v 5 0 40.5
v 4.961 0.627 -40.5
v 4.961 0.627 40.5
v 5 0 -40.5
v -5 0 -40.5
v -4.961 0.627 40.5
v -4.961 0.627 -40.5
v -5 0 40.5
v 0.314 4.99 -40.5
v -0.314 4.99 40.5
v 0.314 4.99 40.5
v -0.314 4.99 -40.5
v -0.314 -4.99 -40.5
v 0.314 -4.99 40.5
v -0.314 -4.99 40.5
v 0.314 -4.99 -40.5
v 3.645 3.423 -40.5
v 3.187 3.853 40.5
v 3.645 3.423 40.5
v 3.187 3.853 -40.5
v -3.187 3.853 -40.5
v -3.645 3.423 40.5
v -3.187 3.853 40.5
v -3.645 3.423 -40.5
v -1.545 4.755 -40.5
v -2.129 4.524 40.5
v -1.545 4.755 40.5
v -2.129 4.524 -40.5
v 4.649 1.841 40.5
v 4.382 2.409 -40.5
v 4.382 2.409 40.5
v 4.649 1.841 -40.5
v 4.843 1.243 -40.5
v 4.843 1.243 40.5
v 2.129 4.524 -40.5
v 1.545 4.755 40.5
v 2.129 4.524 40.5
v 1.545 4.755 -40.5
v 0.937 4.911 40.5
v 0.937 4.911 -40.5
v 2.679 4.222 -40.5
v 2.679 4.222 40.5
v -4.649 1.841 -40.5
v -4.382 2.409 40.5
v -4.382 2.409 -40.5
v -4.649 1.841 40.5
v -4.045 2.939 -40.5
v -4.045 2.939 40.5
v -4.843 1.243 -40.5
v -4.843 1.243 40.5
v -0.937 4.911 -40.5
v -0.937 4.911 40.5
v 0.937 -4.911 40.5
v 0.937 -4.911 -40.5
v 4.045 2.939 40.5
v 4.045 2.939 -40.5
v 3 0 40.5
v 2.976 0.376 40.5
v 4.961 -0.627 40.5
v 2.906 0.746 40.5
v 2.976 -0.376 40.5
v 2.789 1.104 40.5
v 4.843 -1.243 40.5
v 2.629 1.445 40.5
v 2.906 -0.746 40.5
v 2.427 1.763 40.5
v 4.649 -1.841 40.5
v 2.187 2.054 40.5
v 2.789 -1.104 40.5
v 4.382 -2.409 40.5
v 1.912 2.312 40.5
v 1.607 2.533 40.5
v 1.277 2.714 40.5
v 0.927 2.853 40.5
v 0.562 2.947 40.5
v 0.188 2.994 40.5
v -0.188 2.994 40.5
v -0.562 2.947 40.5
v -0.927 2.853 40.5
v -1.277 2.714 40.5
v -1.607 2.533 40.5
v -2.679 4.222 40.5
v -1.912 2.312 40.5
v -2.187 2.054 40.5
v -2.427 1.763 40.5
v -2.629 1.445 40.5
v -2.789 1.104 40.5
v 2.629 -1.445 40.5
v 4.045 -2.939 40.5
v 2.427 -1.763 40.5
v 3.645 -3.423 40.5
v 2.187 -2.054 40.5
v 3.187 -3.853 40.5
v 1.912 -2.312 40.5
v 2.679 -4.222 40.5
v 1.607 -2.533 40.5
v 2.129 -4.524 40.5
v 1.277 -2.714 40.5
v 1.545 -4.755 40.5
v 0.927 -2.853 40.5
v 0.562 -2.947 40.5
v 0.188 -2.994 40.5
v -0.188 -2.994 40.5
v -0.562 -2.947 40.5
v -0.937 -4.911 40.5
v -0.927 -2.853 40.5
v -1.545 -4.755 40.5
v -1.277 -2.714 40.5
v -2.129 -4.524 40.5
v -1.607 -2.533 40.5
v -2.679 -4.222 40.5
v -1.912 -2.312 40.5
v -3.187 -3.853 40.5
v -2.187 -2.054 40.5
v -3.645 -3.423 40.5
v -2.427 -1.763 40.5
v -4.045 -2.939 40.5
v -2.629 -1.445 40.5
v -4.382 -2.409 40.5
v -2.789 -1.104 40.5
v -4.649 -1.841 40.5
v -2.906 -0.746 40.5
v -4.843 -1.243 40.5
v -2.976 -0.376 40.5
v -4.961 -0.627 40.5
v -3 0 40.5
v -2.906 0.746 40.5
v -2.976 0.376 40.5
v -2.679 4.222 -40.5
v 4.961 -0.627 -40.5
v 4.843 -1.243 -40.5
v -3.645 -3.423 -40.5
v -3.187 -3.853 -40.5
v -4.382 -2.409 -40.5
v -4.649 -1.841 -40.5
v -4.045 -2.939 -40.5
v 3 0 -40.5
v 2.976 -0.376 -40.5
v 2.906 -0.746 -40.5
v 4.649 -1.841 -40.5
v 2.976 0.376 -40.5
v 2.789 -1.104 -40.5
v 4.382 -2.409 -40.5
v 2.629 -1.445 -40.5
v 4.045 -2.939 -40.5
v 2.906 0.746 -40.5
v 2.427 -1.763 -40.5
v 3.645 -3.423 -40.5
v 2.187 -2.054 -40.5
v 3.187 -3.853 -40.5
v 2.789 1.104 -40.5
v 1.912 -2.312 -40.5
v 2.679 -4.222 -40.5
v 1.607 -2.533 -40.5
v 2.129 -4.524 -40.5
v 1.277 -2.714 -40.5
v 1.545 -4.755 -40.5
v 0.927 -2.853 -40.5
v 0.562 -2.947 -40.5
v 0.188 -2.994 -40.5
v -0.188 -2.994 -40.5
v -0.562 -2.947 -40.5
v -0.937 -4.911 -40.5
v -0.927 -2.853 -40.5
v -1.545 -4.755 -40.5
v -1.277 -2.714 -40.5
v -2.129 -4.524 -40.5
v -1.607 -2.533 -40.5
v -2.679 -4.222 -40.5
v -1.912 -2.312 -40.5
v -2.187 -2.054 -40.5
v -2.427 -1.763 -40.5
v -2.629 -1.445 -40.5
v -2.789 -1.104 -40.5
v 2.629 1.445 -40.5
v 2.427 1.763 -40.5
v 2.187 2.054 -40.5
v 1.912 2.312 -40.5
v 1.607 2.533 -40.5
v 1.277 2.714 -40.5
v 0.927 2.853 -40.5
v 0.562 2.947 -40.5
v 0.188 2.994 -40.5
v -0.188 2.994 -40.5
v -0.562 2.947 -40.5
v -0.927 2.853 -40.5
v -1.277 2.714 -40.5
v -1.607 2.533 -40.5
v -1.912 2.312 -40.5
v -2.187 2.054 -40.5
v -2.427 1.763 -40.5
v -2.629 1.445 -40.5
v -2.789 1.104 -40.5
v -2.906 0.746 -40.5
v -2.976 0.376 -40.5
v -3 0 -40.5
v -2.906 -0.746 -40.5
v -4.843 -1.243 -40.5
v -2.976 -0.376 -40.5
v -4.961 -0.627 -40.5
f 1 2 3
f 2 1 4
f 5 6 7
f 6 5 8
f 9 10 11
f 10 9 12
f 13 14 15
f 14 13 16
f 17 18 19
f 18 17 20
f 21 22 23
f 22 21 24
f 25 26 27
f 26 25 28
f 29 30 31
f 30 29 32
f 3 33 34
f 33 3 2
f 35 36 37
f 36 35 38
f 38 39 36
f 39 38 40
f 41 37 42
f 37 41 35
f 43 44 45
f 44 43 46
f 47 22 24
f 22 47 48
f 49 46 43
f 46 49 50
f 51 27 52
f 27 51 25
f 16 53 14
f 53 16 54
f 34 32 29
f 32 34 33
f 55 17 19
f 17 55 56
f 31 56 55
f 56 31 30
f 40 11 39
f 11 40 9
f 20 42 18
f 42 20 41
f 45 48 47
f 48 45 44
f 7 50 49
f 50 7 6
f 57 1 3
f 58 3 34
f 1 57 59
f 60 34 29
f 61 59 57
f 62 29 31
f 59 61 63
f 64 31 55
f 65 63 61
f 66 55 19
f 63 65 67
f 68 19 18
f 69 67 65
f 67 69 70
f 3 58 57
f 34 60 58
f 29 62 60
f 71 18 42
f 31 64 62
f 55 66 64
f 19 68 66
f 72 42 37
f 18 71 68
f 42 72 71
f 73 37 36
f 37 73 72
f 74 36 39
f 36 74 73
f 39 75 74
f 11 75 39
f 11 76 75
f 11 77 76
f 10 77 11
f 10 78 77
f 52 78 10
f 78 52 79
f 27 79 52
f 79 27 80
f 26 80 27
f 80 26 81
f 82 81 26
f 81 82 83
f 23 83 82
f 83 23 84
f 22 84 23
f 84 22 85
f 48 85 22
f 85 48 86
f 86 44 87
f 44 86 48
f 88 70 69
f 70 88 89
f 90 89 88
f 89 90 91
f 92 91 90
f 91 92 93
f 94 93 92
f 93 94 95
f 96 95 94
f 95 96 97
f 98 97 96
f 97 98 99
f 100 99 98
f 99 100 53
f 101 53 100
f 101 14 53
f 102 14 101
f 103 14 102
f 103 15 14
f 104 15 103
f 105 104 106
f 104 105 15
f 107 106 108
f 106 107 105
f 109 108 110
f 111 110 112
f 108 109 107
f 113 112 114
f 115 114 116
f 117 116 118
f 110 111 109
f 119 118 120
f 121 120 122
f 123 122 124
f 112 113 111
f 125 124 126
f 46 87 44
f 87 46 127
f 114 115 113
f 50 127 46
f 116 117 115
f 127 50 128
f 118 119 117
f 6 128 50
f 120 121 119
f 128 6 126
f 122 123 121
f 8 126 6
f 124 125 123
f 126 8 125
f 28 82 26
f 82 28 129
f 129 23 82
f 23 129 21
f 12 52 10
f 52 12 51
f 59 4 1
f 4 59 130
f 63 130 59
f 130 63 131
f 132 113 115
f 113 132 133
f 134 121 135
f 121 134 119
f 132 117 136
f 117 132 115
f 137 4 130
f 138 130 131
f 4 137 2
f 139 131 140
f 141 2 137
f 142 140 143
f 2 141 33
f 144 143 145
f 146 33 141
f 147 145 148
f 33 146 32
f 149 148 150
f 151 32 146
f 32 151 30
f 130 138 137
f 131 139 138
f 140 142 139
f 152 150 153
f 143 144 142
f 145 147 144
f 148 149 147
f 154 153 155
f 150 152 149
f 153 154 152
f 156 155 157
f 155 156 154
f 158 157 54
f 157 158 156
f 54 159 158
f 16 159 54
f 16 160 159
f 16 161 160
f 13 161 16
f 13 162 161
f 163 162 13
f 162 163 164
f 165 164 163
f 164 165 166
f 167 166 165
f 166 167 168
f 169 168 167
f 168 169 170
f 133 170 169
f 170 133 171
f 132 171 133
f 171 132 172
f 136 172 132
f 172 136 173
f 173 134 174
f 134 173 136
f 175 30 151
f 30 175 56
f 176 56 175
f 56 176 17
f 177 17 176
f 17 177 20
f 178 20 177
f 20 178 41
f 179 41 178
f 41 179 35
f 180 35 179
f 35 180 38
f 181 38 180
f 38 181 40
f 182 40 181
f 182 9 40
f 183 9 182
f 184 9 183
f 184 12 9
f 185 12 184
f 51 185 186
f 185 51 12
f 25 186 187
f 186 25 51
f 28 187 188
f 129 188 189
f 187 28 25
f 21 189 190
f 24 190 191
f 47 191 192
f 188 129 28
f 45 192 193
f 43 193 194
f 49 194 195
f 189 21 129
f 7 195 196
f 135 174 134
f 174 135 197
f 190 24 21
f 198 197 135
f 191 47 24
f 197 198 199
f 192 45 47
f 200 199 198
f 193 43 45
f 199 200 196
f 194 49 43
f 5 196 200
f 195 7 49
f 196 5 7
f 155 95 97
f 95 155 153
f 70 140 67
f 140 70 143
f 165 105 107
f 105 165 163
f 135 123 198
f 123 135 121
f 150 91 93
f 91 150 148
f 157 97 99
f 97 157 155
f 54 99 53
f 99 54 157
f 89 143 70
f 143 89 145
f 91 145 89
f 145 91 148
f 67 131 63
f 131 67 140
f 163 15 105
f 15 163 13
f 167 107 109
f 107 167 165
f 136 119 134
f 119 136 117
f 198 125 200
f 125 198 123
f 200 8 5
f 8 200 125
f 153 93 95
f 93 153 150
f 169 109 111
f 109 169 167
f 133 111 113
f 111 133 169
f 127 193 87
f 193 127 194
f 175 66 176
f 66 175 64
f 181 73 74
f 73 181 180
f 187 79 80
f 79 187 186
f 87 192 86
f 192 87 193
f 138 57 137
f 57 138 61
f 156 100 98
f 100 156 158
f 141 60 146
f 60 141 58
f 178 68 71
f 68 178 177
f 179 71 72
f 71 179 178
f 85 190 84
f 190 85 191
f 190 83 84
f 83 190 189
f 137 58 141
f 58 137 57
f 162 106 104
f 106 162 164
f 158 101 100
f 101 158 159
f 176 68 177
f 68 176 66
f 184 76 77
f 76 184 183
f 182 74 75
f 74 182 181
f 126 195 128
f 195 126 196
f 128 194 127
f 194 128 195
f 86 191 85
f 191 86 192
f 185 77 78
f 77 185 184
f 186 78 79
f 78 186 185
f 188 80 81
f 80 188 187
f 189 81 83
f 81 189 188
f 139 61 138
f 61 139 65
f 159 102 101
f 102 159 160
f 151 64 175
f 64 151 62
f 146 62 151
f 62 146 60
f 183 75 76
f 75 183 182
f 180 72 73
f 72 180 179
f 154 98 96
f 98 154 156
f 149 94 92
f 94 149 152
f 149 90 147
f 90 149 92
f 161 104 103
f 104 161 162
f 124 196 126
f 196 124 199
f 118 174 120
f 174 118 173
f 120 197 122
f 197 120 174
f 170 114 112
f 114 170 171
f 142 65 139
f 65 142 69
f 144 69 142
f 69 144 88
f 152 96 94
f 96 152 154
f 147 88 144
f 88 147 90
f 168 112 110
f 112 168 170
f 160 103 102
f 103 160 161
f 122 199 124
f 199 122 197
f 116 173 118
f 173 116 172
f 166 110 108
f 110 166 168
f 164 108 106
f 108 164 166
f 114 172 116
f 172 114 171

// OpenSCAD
$fn = 50;


difference() {
	union() {
		translate(v = [0, 0, -40.5000000000]) {
			cylinder(h = 81, r = 5.0000000000);
		}
	}
	union() {
		translate(v = [0, 0, -100.0000000000]) {
			cylinder(h = 200, r = 3);
		}
	}
}
